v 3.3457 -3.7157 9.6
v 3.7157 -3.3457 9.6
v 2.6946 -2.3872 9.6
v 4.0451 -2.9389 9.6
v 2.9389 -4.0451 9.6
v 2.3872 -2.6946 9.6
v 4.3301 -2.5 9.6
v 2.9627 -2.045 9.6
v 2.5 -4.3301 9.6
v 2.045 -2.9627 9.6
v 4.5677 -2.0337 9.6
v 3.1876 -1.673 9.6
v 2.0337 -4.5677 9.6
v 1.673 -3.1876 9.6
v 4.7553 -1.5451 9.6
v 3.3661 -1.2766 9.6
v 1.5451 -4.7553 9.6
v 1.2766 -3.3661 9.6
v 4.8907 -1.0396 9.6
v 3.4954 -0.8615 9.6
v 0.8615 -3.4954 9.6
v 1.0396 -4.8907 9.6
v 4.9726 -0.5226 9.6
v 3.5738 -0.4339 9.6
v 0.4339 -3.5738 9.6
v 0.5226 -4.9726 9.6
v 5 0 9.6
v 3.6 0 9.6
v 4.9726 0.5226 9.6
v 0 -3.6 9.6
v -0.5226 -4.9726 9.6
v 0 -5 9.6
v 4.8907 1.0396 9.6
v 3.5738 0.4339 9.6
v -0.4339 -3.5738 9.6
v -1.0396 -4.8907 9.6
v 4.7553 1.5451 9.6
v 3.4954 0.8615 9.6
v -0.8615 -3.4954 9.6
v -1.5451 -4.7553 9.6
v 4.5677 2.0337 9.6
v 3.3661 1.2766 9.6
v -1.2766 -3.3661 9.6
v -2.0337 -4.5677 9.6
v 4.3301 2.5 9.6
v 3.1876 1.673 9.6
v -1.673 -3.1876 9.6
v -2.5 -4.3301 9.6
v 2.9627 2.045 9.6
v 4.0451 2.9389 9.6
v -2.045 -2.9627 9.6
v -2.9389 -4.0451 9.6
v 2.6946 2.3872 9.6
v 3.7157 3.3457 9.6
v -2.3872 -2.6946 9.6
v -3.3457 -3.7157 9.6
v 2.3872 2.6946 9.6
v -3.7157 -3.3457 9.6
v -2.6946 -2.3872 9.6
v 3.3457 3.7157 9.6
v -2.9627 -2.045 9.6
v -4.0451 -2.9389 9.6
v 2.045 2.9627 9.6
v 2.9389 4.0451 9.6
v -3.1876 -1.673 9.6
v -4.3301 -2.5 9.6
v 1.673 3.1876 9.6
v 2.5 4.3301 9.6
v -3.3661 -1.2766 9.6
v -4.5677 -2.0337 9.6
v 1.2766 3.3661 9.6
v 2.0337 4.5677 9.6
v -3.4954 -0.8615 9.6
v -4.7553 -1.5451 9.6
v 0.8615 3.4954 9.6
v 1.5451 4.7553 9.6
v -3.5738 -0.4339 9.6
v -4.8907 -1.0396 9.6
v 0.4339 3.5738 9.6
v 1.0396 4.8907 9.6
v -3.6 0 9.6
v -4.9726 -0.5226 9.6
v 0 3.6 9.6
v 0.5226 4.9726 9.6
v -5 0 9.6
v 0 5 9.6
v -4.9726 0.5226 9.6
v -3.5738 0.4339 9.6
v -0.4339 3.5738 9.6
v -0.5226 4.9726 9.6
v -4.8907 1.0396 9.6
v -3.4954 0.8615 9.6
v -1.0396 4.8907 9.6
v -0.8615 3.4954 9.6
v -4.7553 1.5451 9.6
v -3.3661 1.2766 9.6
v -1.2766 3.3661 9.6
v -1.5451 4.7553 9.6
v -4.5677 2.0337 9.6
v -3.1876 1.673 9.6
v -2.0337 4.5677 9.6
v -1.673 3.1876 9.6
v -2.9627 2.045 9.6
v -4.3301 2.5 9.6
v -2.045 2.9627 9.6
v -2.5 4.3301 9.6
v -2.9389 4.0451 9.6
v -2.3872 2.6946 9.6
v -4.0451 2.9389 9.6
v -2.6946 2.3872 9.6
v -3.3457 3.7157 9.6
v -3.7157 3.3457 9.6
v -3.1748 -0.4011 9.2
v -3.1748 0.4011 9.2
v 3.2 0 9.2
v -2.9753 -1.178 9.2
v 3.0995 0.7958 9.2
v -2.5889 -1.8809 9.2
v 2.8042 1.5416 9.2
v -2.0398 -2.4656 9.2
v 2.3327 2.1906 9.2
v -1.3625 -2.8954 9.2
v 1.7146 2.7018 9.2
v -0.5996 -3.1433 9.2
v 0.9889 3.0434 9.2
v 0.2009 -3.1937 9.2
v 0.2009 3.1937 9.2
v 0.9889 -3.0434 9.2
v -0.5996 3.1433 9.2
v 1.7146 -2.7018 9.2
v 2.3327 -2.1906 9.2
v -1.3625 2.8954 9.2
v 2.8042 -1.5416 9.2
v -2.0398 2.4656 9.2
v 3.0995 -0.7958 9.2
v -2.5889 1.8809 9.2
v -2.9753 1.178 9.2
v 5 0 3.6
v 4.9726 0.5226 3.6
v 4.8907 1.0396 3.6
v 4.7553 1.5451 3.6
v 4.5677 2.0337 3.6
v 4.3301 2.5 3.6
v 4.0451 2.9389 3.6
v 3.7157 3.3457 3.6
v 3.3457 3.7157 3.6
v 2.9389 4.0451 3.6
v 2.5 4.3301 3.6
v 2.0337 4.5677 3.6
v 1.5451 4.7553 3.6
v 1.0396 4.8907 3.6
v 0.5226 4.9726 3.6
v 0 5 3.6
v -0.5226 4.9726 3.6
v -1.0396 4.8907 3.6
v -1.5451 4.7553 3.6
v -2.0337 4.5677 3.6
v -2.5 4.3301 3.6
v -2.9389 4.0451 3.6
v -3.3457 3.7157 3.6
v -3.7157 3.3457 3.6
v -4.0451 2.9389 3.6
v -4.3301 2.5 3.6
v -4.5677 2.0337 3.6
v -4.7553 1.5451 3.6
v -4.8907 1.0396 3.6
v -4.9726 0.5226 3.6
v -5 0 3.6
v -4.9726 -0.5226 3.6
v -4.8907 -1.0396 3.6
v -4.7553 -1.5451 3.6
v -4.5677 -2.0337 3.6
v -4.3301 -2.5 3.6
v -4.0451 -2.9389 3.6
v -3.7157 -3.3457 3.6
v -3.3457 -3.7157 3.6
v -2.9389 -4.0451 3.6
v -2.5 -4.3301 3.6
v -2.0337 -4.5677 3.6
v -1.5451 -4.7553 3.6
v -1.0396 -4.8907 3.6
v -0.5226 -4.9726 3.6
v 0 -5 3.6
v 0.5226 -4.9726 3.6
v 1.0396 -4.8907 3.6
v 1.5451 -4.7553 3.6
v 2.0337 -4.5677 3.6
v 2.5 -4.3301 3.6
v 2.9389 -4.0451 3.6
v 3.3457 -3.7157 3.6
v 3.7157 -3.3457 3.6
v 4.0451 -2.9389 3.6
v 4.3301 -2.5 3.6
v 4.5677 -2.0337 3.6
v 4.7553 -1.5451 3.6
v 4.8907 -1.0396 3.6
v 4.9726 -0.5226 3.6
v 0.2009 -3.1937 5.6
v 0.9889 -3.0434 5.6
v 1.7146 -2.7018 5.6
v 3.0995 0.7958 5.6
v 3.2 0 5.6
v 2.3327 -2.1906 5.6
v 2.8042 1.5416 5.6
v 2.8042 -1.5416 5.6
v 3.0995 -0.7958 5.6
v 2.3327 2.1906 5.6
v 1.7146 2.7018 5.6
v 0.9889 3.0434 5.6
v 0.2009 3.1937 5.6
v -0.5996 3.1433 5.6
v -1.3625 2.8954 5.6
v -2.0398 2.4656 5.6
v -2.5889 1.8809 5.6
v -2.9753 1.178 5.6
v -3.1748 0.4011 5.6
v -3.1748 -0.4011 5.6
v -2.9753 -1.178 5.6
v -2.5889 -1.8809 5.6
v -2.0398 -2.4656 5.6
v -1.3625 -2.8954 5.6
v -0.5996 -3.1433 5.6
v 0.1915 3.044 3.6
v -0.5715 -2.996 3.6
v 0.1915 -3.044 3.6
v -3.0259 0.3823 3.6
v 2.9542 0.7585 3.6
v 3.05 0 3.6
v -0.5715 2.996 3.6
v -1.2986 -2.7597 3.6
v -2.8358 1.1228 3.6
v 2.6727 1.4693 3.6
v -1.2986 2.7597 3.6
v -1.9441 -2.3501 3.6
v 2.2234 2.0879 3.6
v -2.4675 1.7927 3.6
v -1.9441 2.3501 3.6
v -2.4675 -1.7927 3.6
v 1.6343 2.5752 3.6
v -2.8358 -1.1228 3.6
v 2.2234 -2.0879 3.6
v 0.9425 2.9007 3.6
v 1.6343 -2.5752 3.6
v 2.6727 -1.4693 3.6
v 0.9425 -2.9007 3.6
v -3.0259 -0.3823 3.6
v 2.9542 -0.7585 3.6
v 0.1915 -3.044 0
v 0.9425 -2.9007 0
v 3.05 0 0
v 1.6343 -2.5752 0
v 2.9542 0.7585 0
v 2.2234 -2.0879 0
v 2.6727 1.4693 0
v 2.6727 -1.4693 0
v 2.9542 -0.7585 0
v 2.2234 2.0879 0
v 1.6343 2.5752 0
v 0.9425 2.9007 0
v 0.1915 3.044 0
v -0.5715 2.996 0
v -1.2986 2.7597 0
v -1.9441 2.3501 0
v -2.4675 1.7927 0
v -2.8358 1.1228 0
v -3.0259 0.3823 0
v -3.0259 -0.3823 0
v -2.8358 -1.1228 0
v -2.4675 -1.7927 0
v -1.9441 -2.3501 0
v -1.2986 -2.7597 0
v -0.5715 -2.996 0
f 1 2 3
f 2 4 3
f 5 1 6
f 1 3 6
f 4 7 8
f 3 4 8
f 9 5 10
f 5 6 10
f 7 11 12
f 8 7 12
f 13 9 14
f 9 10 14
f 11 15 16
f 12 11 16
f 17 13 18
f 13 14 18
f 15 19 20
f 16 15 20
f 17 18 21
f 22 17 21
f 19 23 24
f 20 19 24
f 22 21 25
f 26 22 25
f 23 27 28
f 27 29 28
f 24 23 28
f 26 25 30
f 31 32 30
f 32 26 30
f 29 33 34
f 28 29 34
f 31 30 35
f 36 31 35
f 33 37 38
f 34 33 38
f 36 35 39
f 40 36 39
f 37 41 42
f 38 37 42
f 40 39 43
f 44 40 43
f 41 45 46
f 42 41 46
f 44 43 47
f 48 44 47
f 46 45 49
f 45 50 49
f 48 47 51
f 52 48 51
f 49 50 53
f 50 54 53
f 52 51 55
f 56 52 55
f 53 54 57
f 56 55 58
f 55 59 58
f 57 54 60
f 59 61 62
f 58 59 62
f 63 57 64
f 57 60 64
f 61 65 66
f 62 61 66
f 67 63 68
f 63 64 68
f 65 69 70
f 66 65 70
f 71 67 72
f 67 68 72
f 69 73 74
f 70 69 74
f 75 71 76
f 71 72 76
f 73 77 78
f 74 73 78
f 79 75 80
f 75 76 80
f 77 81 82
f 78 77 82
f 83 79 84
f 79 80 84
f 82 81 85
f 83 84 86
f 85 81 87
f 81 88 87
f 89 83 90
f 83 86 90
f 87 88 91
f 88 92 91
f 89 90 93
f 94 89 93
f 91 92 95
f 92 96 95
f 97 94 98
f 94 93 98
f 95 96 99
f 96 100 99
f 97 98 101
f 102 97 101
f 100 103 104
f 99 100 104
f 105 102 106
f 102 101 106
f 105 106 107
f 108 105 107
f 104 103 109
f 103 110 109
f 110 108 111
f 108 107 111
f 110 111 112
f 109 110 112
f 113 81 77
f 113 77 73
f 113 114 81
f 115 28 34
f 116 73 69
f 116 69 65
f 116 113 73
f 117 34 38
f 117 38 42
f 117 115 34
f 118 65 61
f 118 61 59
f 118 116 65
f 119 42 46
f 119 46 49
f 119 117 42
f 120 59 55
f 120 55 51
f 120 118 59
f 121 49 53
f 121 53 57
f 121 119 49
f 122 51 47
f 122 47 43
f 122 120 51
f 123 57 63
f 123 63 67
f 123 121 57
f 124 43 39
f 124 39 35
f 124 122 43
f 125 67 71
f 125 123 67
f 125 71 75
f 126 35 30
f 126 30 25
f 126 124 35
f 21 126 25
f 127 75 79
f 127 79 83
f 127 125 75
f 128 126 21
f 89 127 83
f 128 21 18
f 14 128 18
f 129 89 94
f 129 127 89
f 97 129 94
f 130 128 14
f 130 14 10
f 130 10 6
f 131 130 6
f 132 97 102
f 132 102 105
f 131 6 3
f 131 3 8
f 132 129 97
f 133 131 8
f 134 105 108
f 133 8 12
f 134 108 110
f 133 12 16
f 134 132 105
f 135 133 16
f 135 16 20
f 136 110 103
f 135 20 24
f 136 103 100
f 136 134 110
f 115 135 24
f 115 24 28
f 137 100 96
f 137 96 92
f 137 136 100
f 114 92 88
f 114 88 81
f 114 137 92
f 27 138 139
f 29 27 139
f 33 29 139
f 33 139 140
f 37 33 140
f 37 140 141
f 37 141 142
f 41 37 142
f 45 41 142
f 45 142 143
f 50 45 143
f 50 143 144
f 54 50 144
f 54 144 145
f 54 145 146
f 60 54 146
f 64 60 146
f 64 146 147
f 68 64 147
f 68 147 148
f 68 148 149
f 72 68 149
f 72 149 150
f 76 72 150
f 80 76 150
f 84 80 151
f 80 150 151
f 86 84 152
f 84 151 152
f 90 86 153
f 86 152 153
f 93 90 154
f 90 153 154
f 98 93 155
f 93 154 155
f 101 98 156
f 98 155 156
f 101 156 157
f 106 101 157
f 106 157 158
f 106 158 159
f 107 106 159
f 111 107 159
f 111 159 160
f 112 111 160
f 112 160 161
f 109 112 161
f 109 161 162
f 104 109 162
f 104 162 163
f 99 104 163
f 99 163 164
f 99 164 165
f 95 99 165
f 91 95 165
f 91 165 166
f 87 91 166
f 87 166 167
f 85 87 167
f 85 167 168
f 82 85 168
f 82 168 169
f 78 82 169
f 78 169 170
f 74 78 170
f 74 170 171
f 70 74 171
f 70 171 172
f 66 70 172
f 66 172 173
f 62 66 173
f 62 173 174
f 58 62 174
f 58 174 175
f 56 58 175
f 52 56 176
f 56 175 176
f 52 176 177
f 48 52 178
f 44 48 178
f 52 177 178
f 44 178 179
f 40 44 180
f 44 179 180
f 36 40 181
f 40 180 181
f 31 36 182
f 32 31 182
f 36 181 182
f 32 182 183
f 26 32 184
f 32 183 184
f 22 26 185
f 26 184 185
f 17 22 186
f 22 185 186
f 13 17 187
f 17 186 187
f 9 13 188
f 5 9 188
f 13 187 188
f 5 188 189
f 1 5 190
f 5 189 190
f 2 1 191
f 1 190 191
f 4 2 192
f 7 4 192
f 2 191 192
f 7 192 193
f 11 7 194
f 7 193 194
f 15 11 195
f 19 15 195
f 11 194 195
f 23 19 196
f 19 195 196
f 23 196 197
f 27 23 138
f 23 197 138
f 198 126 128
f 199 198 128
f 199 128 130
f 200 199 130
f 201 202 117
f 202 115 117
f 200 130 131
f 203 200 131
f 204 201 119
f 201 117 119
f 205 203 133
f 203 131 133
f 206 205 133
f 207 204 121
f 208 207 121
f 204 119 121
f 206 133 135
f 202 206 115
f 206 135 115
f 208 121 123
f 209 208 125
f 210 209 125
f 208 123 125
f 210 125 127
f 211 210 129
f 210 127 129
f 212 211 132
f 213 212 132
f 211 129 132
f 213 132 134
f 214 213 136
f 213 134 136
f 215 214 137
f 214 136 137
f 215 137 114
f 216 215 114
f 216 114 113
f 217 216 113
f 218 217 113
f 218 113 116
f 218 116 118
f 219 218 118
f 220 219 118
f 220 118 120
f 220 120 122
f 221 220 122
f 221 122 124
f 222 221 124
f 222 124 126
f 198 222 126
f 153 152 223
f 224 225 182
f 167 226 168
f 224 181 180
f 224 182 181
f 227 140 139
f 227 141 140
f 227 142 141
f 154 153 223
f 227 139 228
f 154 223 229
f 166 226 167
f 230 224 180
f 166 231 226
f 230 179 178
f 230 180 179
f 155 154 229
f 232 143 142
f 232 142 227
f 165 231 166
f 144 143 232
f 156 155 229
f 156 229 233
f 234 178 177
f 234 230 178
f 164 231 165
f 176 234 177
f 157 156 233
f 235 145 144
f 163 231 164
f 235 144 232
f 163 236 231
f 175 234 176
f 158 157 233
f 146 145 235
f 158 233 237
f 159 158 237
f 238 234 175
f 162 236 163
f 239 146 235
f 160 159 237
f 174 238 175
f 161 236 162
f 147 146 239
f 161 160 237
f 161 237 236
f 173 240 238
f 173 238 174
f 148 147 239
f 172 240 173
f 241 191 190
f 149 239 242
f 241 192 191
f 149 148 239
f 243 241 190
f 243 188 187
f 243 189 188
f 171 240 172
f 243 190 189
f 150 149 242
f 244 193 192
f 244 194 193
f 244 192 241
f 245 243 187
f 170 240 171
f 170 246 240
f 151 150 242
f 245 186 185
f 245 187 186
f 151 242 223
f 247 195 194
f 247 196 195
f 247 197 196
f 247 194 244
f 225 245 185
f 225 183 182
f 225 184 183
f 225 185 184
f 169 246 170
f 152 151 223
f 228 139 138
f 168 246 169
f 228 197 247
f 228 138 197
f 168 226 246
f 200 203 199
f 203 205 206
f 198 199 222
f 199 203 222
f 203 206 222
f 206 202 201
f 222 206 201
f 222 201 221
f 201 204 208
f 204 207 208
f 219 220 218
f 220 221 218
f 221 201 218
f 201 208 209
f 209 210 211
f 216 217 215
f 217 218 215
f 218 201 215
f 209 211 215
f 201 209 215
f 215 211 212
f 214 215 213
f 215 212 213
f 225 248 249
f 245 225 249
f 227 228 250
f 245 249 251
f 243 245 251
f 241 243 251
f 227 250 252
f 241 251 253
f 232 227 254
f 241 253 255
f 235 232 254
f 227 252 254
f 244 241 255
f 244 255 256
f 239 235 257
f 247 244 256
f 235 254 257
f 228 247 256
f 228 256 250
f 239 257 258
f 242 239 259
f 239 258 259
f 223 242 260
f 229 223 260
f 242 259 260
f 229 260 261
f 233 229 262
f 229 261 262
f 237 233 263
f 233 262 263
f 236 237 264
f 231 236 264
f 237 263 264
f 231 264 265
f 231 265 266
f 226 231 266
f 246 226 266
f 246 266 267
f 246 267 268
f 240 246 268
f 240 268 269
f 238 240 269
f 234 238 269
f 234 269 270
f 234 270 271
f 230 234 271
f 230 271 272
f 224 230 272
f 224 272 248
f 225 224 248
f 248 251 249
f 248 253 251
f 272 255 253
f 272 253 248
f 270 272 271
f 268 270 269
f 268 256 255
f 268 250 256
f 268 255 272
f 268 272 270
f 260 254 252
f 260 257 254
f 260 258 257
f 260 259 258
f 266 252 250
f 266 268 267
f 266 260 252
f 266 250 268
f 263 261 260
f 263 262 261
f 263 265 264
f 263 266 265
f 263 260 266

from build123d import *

# Parameters (mm, degrees)
SKETCH_R     = 3.05
PAD_DEPTH    = 3.6
SKETCH001_R  = 5
PAD001_DEPTH = 6
SKETCH002_R  = 3.2
POCKET_DEPTH = 4
CHAMFER_SIZE = 0.4


with BuildPart() as part:
    # Sketch → Pad (new body)
    with BuildSketch(Plane.XY):
        Circle(SKETCH_R)
    extrude(amount=PAD_DEPTH)

    # Sketch001 → Pad001 (new body)
    with BuildSketch(Plane.XY.offset(3.6)):
        Circle(SKETCH001_R)
    extrude(amount=PAD001_DEPTH)

    # Sketch002 → Pocket (cut)
    with BuildSketch(Plane.XY.offset(9.6)):
        Circle(SKETCH002_R)
    extrude(amount=-POCKET_DEPTH, mode=Mode.SUBTRACT)

    # Chamfer
    chamfer_edges = [part.edges().sort_by_distance(p)[0] for p in [
        (-3.2, 0, 9.6),
    ]]
    chamfer(chamfer_edges, length=CHAMFER_SIZE)


solid = part.part
